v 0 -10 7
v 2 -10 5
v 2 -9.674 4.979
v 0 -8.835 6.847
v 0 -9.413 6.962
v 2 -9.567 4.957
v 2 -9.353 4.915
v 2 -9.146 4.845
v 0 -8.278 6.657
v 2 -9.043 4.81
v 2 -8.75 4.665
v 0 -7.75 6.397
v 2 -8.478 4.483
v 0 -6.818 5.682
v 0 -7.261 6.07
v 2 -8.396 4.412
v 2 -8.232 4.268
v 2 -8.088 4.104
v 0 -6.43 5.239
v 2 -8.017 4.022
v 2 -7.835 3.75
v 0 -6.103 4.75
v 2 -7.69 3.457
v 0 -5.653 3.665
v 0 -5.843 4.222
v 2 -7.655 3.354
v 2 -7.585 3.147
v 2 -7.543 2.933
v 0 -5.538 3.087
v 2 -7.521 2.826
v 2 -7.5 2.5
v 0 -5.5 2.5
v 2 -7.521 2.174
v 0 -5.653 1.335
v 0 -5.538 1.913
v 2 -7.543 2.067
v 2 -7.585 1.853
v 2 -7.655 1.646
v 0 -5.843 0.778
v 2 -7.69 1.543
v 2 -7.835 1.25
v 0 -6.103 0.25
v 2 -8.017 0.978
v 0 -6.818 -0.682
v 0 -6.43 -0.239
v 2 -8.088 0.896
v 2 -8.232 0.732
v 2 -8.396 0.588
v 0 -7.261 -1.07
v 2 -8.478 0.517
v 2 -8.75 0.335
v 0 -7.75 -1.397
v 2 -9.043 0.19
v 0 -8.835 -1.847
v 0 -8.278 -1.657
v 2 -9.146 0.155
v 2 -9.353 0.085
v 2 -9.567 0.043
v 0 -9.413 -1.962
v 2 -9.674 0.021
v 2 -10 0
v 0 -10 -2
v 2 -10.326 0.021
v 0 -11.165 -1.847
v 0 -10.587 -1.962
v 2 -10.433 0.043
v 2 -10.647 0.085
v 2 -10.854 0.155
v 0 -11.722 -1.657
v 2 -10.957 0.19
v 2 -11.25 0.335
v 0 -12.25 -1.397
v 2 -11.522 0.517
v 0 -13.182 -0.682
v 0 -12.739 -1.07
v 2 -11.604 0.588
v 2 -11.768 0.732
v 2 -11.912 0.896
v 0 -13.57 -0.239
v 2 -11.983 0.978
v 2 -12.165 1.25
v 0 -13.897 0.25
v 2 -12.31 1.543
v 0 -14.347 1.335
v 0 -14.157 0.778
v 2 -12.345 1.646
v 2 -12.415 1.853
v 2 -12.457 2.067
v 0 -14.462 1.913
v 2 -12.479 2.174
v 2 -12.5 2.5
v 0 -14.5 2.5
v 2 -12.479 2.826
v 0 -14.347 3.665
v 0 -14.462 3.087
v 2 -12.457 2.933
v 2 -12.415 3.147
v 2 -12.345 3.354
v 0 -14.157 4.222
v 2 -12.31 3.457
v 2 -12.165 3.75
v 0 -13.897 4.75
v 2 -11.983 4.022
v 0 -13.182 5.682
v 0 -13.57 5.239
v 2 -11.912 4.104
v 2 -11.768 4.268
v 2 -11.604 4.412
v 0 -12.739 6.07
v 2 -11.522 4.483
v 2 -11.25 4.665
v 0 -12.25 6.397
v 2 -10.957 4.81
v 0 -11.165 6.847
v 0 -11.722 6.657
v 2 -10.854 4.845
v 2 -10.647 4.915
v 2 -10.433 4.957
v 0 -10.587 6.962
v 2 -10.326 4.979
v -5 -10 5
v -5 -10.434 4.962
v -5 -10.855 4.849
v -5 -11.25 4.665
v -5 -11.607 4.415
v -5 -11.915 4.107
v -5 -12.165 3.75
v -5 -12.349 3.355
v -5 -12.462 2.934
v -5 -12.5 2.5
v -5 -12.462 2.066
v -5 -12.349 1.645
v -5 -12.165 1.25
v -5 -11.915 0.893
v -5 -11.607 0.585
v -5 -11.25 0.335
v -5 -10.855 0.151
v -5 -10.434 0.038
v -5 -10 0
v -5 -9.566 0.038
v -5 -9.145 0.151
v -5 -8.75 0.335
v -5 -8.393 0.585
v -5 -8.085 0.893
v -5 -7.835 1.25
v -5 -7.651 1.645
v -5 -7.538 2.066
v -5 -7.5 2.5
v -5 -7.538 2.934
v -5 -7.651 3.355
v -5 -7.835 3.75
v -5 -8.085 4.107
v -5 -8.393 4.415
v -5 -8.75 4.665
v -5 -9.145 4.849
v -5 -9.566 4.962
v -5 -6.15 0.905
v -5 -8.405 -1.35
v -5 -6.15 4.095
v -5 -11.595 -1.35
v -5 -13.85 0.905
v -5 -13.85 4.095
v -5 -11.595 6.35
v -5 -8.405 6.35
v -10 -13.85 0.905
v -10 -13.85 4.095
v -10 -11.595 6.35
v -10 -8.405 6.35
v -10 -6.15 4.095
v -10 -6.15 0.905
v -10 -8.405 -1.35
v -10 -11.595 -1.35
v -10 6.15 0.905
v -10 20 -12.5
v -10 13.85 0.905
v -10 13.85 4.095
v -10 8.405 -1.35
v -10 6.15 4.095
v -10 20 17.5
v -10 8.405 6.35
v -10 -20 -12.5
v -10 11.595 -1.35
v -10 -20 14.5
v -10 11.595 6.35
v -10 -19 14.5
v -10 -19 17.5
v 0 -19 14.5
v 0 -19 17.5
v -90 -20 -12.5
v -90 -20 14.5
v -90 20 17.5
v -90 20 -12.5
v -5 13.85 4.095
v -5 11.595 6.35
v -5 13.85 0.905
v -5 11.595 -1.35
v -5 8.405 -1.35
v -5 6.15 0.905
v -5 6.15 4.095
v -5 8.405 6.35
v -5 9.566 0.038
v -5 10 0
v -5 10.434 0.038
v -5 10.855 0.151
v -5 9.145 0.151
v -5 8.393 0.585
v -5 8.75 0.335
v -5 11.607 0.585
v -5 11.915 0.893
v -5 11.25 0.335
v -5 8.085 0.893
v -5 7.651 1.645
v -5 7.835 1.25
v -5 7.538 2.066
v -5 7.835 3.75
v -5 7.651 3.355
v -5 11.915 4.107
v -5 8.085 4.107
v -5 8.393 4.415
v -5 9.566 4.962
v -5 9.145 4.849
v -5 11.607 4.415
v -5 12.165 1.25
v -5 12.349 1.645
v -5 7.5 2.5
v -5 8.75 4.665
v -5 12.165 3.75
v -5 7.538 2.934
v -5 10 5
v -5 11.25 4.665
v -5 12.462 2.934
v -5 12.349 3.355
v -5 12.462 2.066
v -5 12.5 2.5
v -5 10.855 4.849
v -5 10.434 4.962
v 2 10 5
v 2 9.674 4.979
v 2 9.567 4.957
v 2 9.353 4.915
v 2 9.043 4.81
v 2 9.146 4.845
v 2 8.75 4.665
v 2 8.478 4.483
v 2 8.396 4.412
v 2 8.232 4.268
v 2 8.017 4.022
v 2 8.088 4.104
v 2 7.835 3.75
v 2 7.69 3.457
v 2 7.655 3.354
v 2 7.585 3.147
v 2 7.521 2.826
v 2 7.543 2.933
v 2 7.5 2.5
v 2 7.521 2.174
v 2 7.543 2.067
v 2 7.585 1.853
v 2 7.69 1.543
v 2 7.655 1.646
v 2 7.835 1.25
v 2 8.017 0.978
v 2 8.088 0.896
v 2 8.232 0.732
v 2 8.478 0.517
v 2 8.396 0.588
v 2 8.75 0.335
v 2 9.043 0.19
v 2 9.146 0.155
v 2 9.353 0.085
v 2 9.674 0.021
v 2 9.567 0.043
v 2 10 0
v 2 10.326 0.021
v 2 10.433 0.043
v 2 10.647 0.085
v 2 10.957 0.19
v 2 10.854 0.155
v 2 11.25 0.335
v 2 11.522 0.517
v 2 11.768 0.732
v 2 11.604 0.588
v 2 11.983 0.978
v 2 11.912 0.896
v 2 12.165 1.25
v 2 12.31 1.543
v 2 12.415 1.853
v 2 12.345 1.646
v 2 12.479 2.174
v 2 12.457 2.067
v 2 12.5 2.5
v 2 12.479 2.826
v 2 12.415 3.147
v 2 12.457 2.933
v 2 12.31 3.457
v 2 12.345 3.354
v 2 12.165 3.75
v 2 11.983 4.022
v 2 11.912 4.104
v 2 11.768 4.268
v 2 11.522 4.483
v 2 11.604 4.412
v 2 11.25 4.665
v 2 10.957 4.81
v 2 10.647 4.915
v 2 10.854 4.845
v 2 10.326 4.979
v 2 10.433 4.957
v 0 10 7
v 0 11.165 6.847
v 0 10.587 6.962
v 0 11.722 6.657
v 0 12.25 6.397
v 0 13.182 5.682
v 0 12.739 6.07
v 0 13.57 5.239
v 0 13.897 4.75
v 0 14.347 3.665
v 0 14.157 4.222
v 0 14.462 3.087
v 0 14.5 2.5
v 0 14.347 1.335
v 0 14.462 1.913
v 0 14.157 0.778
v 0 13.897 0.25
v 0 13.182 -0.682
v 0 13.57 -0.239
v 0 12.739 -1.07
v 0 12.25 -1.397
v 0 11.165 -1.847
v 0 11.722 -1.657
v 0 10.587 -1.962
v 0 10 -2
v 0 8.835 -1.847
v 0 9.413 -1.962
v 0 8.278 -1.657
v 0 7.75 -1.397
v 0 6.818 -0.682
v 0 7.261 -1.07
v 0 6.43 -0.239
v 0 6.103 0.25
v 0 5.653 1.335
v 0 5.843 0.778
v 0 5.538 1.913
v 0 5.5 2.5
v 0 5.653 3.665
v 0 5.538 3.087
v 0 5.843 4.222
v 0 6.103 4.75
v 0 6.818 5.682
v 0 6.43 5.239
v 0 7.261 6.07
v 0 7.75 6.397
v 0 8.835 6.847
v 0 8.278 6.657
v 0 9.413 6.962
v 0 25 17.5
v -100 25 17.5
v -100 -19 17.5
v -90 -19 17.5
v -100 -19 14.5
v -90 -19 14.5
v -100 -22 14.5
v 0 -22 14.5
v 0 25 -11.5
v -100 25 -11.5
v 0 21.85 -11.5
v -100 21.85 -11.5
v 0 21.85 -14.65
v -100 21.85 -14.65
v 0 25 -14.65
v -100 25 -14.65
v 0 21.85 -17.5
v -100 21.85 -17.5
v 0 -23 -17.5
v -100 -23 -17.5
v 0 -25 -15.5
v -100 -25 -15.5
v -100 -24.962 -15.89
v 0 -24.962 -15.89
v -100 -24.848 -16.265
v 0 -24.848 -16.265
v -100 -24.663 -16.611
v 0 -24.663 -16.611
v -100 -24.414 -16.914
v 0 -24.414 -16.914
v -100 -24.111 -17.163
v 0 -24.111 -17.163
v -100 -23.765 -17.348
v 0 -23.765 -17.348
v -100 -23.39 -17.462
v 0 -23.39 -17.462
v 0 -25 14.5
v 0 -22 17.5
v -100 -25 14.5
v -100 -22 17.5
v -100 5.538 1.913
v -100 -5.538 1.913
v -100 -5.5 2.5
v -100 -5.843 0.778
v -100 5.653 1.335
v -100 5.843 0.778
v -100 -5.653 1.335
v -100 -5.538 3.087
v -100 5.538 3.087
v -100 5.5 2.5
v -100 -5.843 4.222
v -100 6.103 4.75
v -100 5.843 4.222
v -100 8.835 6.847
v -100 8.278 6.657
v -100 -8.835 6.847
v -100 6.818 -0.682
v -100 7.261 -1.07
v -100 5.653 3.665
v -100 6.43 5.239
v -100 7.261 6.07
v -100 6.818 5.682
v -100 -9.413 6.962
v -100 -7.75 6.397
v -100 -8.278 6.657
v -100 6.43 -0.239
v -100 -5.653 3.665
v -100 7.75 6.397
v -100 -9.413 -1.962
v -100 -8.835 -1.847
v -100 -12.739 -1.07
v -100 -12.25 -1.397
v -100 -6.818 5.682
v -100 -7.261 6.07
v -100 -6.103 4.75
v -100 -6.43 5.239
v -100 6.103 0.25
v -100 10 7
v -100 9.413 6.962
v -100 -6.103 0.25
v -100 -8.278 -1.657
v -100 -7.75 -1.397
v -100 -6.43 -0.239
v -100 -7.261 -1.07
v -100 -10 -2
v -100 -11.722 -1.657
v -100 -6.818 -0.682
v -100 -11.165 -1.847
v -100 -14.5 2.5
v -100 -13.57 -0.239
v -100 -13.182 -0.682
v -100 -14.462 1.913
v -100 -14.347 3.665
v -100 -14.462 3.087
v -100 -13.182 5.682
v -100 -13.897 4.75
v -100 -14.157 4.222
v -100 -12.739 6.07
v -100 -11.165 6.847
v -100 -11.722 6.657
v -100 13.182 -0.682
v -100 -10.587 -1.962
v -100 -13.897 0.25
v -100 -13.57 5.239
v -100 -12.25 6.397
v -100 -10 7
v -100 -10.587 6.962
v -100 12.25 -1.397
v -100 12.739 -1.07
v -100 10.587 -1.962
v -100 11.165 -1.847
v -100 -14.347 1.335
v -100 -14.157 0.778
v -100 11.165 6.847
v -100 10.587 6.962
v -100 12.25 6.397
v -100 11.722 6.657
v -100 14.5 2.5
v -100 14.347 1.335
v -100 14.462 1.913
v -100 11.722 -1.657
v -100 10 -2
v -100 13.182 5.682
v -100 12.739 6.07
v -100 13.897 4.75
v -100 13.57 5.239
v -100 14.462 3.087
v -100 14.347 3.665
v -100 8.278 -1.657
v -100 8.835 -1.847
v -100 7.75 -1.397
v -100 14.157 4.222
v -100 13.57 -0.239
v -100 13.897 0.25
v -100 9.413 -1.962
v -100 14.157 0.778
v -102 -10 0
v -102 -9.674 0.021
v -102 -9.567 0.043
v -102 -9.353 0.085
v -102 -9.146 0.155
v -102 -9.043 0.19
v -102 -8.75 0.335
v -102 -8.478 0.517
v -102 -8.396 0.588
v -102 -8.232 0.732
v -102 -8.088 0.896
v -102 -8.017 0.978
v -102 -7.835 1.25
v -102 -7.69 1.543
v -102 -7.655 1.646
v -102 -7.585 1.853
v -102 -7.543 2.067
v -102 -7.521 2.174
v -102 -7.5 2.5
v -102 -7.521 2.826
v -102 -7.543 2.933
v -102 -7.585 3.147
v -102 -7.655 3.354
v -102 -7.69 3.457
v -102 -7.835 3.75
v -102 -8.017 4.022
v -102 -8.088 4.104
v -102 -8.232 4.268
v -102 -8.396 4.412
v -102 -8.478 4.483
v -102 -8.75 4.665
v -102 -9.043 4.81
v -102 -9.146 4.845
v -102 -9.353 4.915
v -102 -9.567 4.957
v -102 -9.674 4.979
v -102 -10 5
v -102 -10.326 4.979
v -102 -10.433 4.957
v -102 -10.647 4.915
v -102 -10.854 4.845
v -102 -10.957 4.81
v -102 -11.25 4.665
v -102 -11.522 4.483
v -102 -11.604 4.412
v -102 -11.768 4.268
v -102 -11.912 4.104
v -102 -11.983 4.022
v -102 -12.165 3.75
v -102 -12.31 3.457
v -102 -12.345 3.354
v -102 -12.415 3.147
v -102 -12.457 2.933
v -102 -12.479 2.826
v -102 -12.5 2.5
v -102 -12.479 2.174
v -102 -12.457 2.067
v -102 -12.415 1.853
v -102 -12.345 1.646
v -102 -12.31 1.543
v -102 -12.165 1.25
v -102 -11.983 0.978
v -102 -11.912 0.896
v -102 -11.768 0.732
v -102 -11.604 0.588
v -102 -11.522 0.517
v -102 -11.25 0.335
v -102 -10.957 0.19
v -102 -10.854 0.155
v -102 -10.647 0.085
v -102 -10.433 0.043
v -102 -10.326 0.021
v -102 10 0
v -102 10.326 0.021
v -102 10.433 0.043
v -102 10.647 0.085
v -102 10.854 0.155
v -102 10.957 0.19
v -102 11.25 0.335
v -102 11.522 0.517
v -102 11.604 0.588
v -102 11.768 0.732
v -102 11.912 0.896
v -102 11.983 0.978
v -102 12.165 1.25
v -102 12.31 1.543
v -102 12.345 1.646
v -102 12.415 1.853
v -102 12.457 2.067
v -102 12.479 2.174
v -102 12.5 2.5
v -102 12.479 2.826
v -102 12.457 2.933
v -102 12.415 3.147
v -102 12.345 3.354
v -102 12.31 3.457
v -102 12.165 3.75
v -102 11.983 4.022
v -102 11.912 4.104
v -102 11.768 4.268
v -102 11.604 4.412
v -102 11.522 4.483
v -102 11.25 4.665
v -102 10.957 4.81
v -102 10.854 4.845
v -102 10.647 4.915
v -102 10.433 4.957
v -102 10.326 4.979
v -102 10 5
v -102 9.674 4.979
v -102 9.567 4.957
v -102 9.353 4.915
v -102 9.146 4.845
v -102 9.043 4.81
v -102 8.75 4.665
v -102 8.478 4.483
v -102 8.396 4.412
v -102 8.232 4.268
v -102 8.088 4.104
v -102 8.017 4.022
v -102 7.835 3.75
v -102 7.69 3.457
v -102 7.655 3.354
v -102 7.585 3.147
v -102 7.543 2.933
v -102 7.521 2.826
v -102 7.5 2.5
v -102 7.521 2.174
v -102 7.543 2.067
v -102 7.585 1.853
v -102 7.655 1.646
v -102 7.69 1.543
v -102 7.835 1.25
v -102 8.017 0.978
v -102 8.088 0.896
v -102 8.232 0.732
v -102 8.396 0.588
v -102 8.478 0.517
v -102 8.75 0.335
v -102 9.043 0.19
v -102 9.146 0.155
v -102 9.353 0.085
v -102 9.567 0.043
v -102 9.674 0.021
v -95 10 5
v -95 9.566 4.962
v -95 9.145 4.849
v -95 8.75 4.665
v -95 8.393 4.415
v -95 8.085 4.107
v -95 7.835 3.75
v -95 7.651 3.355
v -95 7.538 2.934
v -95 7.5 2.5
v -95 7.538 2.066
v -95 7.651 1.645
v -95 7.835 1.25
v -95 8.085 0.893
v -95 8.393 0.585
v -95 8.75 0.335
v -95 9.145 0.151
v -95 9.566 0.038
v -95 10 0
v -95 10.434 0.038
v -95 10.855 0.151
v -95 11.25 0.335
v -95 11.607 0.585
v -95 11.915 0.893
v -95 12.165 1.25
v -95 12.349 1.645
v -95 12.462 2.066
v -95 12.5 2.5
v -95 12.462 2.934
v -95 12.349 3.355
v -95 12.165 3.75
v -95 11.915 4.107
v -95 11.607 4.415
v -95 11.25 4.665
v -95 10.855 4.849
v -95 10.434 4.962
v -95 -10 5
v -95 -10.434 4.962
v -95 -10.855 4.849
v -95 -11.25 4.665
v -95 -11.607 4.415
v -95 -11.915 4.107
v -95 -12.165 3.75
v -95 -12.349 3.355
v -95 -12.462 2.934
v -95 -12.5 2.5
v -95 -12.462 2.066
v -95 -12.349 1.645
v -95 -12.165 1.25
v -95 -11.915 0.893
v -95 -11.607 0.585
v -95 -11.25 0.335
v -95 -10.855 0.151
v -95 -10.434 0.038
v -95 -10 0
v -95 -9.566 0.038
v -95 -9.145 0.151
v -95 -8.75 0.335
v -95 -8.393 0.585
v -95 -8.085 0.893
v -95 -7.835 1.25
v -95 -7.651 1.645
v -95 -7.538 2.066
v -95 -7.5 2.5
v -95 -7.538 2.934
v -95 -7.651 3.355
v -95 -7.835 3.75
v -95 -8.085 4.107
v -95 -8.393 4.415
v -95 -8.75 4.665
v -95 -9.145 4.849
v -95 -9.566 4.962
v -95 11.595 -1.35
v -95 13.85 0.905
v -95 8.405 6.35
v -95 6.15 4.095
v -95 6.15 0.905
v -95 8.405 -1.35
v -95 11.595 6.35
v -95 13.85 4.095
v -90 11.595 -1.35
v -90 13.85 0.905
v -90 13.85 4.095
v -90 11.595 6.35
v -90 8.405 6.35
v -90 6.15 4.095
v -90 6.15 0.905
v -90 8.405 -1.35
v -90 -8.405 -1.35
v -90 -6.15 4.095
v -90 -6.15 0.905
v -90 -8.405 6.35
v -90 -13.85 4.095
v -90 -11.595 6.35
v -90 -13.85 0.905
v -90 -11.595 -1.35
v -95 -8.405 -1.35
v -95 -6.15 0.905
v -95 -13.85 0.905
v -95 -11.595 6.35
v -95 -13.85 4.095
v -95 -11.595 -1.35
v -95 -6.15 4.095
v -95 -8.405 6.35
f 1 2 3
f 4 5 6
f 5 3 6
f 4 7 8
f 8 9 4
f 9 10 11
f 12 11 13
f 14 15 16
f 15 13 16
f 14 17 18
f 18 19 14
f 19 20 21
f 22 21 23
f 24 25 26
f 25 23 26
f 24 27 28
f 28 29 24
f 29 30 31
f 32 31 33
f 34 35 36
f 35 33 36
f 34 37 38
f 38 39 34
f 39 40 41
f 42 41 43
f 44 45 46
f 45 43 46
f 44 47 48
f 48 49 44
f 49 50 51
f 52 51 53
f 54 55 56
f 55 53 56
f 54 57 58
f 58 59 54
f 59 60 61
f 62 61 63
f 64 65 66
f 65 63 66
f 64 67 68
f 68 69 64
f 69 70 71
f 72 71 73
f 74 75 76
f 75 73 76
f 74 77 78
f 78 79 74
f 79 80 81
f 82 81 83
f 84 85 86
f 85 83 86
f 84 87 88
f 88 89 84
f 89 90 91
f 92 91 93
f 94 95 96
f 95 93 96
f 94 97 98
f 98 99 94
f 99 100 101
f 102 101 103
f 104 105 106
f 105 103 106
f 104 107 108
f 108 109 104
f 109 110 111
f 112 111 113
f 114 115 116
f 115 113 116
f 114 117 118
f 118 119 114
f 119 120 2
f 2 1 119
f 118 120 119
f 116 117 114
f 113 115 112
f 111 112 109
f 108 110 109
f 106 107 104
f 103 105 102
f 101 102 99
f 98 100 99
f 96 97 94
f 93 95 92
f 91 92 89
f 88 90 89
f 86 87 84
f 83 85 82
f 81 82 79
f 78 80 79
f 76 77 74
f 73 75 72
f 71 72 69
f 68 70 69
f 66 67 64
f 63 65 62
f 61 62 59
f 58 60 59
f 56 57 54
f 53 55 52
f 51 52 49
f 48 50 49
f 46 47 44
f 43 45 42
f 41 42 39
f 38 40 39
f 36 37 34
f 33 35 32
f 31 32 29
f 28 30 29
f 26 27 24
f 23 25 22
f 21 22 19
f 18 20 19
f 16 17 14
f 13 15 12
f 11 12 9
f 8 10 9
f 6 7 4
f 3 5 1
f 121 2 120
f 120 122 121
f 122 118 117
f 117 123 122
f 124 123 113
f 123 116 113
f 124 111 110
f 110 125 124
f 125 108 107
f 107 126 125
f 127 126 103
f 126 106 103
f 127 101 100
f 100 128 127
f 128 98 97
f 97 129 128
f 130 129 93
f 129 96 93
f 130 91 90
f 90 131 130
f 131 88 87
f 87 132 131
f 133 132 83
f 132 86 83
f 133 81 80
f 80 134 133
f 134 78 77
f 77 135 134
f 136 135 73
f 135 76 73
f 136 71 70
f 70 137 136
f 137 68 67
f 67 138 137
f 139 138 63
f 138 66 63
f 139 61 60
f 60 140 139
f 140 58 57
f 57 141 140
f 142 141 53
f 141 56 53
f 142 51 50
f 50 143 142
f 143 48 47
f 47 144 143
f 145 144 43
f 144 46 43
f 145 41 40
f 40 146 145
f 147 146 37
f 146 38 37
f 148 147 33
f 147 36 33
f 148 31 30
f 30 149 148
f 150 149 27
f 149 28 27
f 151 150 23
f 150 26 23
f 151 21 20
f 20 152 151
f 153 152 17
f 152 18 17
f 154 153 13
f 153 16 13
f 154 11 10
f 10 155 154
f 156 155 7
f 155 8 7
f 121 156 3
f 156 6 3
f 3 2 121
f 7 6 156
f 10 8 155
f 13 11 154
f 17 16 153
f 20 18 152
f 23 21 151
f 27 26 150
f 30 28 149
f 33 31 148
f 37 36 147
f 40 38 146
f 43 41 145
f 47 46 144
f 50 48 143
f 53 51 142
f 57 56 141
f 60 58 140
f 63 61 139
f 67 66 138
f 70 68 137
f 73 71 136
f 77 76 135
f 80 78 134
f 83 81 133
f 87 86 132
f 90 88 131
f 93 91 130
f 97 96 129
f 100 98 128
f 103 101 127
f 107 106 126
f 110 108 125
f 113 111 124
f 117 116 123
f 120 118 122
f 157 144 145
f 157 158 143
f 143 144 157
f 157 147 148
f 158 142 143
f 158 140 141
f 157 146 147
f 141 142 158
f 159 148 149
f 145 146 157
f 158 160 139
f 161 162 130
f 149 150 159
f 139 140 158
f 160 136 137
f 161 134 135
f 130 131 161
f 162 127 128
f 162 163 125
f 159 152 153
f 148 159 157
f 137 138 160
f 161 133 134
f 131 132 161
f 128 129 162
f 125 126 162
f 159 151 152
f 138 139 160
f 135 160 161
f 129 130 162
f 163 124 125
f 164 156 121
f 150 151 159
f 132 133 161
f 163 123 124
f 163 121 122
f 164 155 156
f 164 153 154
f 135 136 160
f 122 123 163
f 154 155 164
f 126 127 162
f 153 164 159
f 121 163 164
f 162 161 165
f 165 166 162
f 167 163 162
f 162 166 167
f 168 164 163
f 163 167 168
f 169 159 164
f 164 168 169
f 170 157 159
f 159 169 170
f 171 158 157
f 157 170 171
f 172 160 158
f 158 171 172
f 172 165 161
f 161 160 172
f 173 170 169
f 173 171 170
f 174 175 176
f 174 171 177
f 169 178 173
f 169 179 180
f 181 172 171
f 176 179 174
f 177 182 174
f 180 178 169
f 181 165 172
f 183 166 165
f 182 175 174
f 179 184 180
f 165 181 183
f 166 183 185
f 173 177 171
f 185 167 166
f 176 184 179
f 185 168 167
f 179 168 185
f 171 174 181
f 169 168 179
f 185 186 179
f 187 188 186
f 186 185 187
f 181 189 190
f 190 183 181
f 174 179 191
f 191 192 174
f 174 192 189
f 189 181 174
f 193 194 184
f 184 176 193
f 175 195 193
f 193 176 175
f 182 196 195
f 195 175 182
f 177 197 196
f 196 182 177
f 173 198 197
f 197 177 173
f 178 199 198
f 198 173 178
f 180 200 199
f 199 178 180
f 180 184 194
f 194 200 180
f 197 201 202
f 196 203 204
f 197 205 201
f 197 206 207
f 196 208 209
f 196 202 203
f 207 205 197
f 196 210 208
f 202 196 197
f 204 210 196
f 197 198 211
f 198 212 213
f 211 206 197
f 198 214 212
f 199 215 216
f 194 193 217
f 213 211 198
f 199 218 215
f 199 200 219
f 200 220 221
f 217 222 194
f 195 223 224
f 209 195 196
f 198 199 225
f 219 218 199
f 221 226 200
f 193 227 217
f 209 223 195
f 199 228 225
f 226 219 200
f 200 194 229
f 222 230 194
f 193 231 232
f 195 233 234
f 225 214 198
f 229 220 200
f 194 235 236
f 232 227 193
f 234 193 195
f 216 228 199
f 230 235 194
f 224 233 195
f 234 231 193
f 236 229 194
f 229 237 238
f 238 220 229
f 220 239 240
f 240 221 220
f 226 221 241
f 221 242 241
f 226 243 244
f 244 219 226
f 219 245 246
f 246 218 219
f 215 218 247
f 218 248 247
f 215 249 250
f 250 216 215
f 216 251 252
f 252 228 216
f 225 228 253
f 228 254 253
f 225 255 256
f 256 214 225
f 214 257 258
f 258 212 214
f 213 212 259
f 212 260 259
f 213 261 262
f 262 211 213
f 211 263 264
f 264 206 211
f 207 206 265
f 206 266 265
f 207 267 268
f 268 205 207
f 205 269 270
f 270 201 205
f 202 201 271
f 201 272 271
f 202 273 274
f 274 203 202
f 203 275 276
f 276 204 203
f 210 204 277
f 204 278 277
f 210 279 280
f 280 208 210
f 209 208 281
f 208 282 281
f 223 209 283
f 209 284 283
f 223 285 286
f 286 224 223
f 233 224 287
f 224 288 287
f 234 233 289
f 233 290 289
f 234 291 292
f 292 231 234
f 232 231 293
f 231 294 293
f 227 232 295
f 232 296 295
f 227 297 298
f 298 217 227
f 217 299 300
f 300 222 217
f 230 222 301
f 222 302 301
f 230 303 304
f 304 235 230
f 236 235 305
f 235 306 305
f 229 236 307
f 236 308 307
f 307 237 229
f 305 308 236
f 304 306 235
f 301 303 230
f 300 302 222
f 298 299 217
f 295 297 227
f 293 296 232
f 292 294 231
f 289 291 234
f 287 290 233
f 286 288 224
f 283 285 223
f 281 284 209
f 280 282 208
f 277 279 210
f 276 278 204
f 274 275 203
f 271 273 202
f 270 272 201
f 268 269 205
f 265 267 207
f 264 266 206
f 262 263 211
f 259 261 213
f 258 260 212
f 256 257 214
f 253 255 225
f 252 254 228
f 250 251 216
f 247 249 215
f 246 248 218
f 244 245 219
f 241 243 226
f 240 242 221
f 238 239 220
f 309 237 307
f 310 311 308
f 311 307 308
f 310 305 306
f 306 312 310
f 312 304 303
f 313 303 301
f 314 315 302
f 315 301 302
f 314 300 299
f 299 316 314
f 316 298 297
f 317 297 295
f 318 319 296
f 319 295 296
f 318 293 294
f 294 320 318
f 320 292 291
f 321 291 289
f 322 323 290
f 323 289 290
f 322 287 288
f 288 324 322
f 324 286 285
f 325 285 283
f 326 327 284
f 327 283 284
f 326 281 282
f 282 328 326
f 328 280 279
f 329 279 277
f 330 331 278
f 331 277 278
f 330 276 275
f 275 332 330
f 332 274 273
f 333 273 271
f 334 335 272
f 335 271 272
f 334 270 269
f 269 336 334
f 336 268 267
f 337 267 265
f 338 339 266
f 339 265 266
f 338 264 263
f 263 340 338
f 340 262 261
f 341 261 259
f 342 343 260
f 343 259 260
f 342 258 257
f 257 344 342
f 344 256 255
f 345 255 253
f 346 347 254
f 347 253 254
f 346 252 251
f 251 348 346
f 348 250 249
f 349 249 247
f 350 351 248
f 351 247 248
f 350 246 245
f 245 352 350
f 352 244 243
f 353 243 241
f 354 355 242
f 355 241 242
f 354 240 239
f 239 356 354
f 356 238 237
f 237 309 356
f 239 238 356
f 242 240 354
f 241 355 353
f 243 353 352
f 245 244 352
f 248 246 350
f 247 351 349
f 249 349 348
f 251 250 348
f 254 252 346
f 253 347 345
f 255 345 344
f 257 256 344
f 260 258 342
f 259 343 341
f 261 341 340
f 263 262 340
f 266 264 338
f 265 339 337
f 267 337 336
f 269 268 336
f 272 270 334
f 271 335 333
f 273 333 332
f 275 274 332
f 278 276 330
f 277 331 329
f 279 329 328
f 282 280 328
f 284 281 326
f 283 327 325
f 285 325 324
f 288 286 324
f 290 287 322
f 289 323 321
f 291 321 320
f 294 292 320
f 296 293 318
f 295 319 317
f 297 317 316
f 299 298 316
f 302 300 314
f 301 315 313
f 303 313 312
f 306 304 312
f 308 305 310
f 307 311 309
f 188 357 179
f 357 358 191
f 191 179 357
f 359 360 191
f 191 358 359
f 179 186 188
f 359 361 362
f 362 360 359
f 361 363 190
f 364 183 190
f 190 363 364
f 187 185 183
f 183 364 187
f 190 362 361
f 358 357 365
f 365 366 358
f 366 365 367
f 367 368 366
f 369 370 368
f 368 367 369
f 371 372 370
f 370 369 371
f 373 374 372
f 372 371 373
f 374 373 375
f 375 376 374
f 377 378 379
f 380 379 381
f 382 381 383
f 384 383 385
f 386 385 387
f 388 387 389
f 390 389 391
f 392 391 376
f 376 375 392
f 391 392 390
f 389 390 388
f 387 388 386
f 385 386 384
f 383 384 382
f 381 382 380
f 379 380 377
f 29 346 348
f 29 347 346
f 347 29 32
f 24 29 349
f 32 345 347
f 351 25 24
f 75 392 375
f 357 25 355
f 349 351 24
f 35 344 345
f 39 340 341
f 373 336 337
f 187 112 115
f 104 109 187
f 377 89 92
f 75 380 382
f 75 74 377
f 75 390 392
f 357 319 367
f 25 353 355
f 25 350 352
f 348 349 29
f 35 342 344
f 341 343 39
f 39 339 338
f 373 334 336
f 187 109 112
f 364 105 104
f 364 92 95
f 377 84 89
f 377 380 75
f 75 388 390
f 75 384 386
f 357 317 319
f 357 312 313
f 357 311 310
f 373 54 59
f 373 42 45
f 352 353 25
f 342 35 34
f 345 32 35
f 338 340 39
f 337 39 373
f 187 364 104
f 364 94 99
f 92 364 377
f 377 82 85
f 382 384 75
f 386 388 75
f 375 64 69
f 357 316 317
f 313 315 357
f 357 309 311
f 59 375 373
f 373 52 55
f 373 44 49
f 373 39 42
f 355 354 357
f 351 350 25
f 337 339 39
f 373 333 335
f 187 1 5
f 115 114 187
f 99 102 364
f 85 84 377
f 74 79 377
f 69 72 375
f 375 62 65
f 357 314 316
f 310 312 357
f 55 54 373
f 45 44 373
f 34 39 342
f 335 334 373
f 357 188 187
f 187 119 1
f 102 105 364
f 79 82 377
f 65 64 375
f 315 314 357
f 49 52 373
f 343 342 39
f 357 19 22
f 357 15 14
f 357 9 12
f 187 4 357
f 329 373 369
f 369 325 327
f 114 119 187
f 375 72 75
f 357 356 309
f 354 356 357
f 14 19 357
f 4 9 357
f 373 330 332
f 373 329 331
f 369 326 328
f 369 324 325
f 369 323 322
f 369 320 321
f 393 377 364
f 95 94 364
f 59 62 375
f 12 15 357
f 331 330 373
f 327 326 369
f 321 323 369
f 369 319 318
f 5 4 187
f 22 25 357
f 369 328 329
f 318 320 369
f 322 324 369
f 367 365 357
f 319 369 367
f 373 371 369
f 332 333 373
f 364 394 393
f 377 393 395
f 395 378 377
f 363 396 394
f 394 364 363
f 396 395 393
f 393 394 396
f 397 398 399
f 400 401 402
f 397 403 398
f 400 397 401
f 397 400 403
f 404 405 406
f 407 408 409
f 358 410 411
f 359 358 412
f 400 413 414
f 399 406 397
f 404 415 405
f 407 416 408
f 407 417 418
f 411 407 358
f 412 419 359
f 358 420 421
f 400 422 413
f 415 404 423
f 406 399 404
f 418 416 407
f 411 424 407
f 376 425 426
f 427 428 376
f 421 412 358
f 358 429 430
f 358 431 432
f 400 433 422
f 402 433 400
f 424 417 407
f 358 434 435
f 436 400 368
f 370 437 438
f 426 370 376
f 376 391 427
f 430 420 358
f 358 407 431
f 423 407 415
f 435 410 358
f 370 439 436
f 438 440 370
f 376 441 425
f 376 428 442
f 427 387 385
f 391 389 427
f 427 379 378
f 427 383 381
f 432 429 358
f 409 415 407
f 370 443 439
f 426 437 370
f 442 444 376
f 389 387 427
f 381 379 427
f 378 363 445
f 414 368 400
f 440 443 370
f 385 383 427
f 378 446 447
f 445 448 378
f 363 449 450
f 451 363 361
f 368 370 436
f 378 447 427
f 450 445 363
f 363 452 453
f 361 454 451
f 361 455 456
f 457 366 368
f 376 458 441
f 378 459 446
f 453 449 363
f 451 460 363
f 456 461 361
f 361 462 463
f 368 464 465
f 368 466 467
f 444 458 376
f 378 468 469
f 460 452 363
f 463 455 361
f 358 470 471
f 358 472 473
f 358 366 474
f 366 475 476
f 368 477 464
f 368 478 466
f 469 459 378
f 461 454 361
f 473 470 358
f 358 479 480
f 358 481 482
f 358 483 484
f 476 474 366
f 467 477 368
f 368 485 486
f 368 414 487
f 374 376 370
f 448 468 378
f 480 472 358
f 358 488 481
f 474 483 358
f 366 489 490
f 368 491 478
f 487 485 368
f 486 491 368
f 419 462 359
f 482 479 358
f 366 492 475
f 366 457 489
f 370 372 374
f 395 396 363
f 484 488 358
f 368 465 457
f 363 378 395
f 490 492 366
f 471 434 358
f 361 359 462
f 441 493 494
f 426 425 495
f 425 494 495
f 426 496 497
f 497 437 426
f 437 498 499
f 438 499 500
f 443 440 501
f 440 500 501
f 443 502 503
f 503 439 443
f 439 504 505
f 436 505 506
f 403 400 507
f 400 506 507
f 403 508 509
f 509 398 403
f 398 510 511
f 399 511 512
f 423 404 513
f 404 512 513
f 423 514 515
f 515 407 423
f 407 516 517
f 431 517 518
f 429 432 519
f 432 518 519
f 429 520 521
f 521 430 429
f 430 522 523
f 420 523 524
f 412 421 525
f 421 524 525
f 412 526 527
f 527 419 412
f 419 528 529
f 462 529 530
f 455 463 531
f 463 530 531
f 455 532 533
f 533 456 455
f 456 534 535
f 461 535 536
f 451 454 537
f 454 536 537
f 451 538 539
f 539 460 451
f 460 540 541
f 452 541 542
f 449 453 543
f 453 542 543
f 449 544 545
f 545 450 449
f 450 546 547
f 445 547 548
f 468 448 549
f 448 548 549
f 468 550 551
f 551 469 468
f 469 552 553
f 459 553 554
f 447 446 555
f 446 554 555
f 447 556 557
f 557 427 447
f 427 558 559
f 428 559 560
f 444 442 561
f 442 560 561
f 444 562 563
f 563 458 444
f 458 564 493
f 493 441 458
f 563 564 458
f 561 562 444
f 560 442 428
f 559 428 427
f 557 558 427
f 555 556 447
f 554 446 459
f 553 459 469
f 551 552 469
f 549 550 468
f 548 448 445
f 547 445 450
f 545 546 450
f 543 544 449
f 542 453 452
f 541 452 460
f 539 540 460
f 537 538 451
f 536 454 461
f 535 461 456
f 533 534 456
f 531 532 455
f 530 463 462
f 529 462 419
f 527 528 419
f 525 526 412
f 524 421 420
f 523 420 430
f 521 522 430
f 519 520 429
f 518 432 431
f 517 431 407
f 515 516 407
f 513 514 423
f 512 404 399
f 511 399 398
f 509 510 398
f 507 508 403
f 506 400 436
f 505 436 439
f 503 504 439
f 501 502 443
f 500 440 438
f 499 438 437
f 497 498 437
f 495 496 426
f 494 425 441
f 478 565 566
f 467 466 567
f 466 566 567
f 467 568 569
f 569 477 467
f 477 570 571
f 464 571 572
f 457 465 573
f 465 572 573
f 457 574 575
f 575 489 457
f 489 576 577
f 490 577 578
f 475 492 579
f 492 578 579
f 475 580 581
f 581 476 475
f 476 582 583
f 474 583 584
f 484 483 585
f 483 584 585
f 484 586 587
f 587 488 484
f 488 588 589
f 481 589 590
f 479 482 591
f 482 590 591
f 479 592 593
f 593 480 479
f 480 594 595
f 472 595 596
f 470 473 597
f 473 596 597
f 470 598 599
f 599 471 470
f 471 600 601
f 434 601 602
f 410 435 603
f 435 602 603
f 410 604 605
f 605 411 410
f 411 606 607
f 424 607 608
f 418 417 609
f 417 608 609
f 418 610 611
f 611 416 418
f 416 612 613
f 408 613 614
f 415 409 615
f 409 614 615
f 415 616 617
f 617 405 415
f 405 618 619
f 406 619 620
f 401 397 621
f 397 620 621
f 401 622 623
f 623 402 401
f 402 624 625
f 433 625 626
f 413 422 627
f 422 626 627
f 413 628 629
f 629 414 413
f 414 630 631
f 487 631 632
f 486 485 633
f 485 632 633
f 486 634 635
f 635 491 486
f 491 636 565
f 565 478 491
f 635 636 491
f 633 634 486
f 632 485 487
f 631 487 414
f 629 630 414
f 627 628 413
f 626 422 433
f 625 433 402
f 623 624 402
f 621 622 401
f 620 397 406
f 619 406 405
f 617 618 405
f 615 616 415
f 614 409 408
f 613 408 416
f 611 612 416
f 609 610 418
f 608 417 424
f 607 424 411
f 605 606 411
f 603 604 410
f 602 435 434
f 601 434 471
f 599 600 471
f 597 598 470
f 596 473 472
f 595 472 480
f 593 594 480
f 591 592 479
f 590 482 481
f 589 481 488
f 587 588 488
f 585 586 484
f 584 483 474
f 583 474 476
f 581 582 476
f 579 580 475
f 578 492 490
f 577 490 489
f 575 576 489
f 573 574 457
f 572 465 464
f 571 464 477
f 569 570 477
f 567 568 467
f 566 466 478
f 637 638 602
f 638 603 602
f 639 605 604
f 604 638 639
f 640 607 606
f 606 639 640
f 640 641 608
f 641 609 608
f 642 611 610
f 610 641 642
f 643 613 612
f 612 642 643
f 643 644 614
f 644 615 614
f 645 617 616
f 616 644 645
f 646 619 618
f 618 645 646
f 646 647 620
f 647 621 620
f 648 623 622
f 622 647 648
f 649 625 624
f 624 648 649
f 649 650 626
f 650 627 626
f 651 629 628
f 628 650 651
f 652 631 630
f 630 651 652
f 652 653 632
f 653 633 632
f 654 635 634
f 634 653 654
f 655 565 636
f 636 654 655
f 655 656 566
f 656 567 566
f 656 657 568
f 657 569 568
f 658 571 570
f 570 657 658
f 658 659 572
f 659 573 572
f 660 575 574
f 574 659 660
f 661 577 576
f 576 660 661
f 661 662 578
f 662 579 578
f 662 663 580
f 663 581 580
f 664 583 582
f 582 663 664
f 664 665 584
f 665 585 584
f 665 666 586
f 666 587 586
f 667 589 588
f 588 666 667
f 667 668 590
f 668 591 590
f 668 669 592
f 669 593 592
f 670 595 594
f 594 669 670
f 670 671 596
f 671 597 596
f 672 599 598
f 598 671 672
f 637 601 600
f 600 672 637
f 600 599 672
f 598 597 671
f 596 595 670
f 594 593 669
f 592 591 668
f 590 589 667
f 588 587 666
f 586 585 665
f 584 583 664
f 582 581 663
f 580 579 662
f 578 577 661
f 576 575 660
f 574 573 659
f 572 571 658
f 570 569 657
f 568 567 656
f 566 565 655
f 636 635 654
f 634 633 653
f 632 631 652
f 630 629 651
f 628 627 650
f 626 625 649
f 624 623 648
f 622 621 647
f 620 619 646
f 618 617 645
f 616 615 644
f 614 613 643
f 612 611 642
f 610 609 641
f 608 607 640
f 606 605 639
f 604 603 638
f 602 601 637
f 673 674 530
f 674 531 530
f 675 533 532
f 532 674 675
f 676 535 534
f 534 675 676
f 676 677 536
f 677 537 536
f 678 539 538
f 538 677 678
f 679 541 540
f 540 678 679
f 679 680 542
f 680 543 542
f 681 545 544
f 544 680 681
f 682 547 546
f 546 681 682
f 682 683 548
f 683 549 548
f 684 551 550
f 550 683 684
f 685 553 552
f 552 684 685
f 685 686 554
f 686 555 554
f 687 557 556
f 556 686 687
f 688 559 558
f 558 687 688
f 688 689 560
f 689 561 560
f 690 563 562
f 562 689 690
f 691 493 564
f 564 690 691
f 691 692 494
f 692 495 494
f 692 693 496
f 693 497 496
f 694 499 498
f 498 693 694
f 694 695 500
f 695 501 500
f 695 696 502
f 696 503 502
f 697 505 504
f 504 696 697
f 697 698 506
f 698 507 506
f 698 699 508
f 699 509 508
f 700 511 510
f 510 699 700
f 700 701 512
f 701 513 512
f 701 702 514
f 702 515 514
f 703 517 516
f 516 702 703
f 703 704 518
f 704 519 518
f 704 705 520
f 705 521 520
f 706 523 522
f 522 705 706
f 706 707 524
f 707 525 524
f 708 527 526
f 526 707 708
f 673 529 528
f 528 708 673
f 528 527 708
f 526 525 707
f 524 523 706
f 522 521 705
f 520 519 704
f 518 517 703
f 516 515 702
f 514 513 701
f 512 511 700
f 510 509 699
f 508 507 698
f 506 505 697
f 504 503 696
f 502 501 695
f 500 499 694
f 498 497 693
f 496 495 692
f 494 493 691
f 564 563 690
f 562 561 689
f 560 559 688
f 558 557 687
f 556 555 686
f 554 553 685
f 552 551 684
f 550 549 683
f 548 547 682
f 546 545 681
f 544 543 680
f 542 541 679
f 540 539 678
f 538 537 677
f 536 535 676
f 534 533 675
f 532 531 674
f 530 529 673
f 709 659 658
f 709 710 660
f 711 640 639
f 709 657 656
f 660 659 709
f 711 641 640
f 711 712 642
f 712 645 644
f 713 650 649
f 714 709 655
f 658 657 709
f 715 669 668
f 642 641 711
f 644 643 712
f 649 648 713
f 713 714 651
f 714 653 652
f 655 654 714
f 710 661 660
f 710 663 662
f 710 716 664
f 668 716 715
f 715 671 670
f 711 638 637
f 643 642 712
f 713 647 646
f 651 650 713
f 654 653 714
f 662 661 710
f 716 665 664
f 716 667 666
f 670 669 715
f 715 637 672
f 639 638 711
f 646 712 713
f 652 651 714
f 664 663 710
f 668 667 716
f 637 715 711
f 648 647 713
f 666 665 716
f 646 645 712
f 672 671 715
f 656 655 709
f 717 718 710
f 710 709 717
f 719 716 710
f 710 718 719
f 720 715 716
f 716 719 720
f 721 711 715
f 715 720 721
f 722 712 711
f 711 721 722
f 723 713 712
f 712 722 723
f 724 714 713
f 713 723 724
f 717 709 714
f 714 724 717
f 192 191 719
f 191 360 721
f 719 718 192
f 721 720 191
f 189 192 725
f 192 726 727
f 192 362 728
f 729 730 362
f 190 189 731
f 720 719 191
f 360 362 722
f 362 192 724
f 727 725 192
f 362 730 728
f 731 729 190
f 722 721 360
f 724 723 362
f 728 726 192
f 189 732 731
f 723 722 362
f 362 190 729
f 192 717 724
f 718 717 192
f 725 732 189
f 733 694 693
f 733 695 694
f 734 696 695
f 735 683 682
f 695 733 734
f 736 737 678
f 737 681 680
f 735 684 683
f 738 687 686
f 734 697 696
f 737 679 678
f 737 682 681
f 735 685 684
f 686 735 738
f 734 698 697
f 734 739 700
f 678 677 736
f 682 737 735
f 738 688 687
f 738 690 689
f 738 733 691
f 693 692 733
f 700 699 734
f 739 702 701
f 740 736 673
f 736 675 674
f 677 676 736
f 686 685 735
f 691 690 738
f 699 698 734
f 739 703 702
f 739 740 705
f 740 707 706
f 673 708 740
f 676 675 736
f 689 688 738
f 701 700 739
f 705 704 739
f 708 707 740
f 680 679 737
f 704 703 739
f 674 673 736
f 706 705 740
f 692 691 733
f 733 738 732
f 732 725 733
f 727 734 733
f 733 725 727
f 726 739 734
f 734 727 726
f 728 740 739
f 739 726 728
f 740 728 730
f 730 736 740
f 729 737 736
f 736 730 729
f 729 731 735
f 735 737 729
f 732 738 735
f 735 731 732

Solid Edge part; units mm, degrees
sketch "Sketch1" plane through (0, 0, 0) normal (-1, 0, 0) x (0, -1, 0)
  line L0 (25, -17.5) -> (25, 17.5)
  line L1 (25, 17.5) -> (-25, 17.5)
  line L2 (-25, 17.5) -> (-25, -17.5)
  line L3 (-25, -17.5) -> (25, -17.5)
  dimension "D1" = 35
  dimension "D2" = 50
extrude "Protrusion1" add sketch "Sketch1" along normal blind 100
sketch "Sketch2" plane through (-50, 0, 17.5) normal (0, 0, 1) x (0, 1, 0)
  line L0 (20, 45) -> (20, -45)
  line L1 (-20, -45) -> (20, -45)
  line L2 (-20, 45) -> (-20, -45)
  line L3 (-20, 45) -> (20, 45)
  dimension "D1" = 90
  dimension "D2" = 5
  dimension "D3" = 90
  dimension "D4" = 5
extrude "Cutout1" cut sketch "Sketch2" against normal blind 30
sketch "Sketch3" plane through (-5, 0, 2.5) normal (-1, 0, 0) x (0, 1, 0)
  line L0 (-20, 15) -> (20, 15)
  line L1 (20, 15) -> (20, -15)
  line L2 (20, -15) -> (-20, -15)
  line L3 (-20, -15) -> (-20, 15)
  line L4 (11.5947, -3.85) -> (8.4053, -3.85)
  line L5 (8.4053, -3.85) -> (6.15, -1.5947)
  line L6 (6.15, -1.5947) -> (6.15, 1.5947)
  line L7 (6.15, 1.5947) -> (8.4053, 3.85)
  line L8 (8.4053, 3.85) -> (11.5947, 3.85)
  line L9 (11.5947, 3.85) -> (13.85, 1.5947)
  line L10 (13.85, 1.5947) -> (13.85, -1.5947)
  line L11 (13.85, -1.5947) -> (11.5947, -3.85)
  line L12 (-11.5947, -3.85) -> (-8.4053, -3.85)
  line L13 (-8.4053, -3.85) -> (-6.15, -1.5947)
  line L14 (-6.15, -1.5947) -> (-6.15, 1.5947)
  line L15 (-6.15, 1.5947) -> (-8.4053, 3.85)
  line L16 (-8.4053, 3.85) -> (-11.5947, 3.85)
  line L17 (-11.5947, 3.85) -> (-13.85, 1.5947)
  line L18 (-13.85, 1.5947) -> (-13.85, -1.5947)
  line L19 (-13.85, -1.5947) -> (-11.5947, -3.85)
extrude "Protrusion2" add sketch "Sketch3" along normal blind 5
sketch "Sketch4" plane through (0, 0, 0) normal (1, 0, 0) x (0, 1, 0)
  circle A0 centre (-10, 2.5) radius 2.5
  circle A1 centre (10, 2.5) radius 2.5
extrude "ExtrudedProtrusion_27" add sketch "Sketch4" along normal blind 5
chamfer "Chamfer_14" distance 2 angle 45 2 edges at (0, 7.5, 2.5) (0, -12.5, 2.5)
sketch "Sketch5" plane through (-100, 0, 0) normal (-1, 0, 0) x (0, -1, 0)
  circle A0 centre (-10, 2.5) radius 2.5
  circle A1 centre (10, 2.5) radius 2.5
extrude "ExtrudedProtrusion_29" add sketch "Sketch5" along normal blind 5
chamfer "Chamfer1" distance 2 angle 45 2 edges at (-100, 10, 0) (-100, -10, 0)
sketch "Sketch6" plane through (-105, 10, 2.5) normal (-1, 0, 0) x (0, -1, 0)
  circle A0 centre (0, 0) radius 2.5
  circle A1 centre (20, 0) radius 2.5
extrude "ExtrudedCutout_41" cut sketch "Sketch6" against normal blind 159
sketch "Sketch7" plane through (-95, 0, 2.5) normal (1, 0, 0) x (0, -1, 0)
  line L0 (-20, 15) -> (20, 15)
  line L1 (20, 15) -> (20, -15)
  line L2 (20, -15) -> (-20, -15)
  line L3 (-20, -15) -> (-20, 15)
  line L4 (-11.5947, 3.85) -> (-8.4053, 3.85)
  line L5 (-8.4053, 3.85) -> (-6.15, 1.5947)
  line L6 (-6.15, 1.5947) -> (-6.15, -1.5947)
  line L7 (-6.15, -1.5947) -> (-8.4053, -3.85)
  line L8 (-8.4053, -3.85) -> (-11.5947, -3.85)
  line L9 (-11.5947, -3.85) -> (-13.85, -1.5947)
  line L10 (-13.85, -1.5947) -> (-13.85, 1.5947)
  line L11 (-13.85, 1.5947) -> (-11.5947, 3.85)
  line L12 (6.15, 1.5947) -> (6.15, -1.5947)
  line L13 (6.15, -1.5947) -> (8.4053, -3.85)
  line L14 (8.4053, -3.85) -> (11.5947, -3.85)
  line L15 (11.5947, -3.85) -> (13.85, -1.5947)
  line L16 (13.85, -1.5947) -> (13.85, 1.5947)
  line L17 (13.85, 1.5947) -> (11.5947, 3.85)
  line L18 (11.5947, 3.85) -> (8.4053, 3.85)
  line L19 (8.4053, 3.85) -> (6.15, 1.5947)
extrude "ExtrudedProtrusion_30" add sketch "Sketch7" along normal blind 5
sketch "Sketch8" plane through (0, 0, 0) normal (1, 0, 0) x (0, -1, 0)
  line L0 (-25, 11.5) -> (-21.85, 11.5)
  line L1 (-21.85, 11.5) -> (-21.85, 14.65)
  line L2 (-21.85, 14.65) -> (-25, 14.65)
  line L3 (-25, 14.65) -> (-21.85, 17.5)
  line L4 (-21.85, 17.5) -> (-21.85, 20.916)
  line L5 (-21.85, 20.916) -> (-29.169, 20.916)
  line L6 (-29.169, 20.916) -> (-29.169, 11.5)
  line L7 (-29.169, 11.5) -> (-25, 11.5)
  dimension "D1" = 3.15
  dimension "D2" = 3.15
  dimension "D3" = 4.2479
  dimension "D4" = 3.416
  dimension "D5" = 7.319
  dimension "D6" = 9.416
  dimension "D7" = 4.169
extrude "Cutout2" cut sketch "Sketch8" against normal blind 112
fillet "Round_8" radius 2 1 edges at (-50, -25, -17.5)
sketch "Sketch9" plane through (0, 0, 0) normal (1, 0, 0) x (0, -1, 0)
  line L0 (22, -14.5) -> (22, -17.5)
  line L1 (25, -14.5) -> (22, -17.5)
  line L2 (25, -14.5) -> (26.5677, -14.5)
  line L3 (26.5677, -14.5) -> (24.562, -20.6312)
  line L4 (24.562, -20.6312) -> (19, -21.06)
  line L5 (19, -14.5) -> (19, -21.06)
  line L6 (19, -14.5) -> (22, -14.5)
  dimension "D1" = 6.56
  dimension "D2" = 3
  dimension "D3" = 4.2426
  dimension "D4" = 1.5677
  dimension "D5" = 6.4509
  dimension "D6" = 5.5785
extrude "ExtrudedCutout_43" cut sketch "Sketch9" against normal blind 210
